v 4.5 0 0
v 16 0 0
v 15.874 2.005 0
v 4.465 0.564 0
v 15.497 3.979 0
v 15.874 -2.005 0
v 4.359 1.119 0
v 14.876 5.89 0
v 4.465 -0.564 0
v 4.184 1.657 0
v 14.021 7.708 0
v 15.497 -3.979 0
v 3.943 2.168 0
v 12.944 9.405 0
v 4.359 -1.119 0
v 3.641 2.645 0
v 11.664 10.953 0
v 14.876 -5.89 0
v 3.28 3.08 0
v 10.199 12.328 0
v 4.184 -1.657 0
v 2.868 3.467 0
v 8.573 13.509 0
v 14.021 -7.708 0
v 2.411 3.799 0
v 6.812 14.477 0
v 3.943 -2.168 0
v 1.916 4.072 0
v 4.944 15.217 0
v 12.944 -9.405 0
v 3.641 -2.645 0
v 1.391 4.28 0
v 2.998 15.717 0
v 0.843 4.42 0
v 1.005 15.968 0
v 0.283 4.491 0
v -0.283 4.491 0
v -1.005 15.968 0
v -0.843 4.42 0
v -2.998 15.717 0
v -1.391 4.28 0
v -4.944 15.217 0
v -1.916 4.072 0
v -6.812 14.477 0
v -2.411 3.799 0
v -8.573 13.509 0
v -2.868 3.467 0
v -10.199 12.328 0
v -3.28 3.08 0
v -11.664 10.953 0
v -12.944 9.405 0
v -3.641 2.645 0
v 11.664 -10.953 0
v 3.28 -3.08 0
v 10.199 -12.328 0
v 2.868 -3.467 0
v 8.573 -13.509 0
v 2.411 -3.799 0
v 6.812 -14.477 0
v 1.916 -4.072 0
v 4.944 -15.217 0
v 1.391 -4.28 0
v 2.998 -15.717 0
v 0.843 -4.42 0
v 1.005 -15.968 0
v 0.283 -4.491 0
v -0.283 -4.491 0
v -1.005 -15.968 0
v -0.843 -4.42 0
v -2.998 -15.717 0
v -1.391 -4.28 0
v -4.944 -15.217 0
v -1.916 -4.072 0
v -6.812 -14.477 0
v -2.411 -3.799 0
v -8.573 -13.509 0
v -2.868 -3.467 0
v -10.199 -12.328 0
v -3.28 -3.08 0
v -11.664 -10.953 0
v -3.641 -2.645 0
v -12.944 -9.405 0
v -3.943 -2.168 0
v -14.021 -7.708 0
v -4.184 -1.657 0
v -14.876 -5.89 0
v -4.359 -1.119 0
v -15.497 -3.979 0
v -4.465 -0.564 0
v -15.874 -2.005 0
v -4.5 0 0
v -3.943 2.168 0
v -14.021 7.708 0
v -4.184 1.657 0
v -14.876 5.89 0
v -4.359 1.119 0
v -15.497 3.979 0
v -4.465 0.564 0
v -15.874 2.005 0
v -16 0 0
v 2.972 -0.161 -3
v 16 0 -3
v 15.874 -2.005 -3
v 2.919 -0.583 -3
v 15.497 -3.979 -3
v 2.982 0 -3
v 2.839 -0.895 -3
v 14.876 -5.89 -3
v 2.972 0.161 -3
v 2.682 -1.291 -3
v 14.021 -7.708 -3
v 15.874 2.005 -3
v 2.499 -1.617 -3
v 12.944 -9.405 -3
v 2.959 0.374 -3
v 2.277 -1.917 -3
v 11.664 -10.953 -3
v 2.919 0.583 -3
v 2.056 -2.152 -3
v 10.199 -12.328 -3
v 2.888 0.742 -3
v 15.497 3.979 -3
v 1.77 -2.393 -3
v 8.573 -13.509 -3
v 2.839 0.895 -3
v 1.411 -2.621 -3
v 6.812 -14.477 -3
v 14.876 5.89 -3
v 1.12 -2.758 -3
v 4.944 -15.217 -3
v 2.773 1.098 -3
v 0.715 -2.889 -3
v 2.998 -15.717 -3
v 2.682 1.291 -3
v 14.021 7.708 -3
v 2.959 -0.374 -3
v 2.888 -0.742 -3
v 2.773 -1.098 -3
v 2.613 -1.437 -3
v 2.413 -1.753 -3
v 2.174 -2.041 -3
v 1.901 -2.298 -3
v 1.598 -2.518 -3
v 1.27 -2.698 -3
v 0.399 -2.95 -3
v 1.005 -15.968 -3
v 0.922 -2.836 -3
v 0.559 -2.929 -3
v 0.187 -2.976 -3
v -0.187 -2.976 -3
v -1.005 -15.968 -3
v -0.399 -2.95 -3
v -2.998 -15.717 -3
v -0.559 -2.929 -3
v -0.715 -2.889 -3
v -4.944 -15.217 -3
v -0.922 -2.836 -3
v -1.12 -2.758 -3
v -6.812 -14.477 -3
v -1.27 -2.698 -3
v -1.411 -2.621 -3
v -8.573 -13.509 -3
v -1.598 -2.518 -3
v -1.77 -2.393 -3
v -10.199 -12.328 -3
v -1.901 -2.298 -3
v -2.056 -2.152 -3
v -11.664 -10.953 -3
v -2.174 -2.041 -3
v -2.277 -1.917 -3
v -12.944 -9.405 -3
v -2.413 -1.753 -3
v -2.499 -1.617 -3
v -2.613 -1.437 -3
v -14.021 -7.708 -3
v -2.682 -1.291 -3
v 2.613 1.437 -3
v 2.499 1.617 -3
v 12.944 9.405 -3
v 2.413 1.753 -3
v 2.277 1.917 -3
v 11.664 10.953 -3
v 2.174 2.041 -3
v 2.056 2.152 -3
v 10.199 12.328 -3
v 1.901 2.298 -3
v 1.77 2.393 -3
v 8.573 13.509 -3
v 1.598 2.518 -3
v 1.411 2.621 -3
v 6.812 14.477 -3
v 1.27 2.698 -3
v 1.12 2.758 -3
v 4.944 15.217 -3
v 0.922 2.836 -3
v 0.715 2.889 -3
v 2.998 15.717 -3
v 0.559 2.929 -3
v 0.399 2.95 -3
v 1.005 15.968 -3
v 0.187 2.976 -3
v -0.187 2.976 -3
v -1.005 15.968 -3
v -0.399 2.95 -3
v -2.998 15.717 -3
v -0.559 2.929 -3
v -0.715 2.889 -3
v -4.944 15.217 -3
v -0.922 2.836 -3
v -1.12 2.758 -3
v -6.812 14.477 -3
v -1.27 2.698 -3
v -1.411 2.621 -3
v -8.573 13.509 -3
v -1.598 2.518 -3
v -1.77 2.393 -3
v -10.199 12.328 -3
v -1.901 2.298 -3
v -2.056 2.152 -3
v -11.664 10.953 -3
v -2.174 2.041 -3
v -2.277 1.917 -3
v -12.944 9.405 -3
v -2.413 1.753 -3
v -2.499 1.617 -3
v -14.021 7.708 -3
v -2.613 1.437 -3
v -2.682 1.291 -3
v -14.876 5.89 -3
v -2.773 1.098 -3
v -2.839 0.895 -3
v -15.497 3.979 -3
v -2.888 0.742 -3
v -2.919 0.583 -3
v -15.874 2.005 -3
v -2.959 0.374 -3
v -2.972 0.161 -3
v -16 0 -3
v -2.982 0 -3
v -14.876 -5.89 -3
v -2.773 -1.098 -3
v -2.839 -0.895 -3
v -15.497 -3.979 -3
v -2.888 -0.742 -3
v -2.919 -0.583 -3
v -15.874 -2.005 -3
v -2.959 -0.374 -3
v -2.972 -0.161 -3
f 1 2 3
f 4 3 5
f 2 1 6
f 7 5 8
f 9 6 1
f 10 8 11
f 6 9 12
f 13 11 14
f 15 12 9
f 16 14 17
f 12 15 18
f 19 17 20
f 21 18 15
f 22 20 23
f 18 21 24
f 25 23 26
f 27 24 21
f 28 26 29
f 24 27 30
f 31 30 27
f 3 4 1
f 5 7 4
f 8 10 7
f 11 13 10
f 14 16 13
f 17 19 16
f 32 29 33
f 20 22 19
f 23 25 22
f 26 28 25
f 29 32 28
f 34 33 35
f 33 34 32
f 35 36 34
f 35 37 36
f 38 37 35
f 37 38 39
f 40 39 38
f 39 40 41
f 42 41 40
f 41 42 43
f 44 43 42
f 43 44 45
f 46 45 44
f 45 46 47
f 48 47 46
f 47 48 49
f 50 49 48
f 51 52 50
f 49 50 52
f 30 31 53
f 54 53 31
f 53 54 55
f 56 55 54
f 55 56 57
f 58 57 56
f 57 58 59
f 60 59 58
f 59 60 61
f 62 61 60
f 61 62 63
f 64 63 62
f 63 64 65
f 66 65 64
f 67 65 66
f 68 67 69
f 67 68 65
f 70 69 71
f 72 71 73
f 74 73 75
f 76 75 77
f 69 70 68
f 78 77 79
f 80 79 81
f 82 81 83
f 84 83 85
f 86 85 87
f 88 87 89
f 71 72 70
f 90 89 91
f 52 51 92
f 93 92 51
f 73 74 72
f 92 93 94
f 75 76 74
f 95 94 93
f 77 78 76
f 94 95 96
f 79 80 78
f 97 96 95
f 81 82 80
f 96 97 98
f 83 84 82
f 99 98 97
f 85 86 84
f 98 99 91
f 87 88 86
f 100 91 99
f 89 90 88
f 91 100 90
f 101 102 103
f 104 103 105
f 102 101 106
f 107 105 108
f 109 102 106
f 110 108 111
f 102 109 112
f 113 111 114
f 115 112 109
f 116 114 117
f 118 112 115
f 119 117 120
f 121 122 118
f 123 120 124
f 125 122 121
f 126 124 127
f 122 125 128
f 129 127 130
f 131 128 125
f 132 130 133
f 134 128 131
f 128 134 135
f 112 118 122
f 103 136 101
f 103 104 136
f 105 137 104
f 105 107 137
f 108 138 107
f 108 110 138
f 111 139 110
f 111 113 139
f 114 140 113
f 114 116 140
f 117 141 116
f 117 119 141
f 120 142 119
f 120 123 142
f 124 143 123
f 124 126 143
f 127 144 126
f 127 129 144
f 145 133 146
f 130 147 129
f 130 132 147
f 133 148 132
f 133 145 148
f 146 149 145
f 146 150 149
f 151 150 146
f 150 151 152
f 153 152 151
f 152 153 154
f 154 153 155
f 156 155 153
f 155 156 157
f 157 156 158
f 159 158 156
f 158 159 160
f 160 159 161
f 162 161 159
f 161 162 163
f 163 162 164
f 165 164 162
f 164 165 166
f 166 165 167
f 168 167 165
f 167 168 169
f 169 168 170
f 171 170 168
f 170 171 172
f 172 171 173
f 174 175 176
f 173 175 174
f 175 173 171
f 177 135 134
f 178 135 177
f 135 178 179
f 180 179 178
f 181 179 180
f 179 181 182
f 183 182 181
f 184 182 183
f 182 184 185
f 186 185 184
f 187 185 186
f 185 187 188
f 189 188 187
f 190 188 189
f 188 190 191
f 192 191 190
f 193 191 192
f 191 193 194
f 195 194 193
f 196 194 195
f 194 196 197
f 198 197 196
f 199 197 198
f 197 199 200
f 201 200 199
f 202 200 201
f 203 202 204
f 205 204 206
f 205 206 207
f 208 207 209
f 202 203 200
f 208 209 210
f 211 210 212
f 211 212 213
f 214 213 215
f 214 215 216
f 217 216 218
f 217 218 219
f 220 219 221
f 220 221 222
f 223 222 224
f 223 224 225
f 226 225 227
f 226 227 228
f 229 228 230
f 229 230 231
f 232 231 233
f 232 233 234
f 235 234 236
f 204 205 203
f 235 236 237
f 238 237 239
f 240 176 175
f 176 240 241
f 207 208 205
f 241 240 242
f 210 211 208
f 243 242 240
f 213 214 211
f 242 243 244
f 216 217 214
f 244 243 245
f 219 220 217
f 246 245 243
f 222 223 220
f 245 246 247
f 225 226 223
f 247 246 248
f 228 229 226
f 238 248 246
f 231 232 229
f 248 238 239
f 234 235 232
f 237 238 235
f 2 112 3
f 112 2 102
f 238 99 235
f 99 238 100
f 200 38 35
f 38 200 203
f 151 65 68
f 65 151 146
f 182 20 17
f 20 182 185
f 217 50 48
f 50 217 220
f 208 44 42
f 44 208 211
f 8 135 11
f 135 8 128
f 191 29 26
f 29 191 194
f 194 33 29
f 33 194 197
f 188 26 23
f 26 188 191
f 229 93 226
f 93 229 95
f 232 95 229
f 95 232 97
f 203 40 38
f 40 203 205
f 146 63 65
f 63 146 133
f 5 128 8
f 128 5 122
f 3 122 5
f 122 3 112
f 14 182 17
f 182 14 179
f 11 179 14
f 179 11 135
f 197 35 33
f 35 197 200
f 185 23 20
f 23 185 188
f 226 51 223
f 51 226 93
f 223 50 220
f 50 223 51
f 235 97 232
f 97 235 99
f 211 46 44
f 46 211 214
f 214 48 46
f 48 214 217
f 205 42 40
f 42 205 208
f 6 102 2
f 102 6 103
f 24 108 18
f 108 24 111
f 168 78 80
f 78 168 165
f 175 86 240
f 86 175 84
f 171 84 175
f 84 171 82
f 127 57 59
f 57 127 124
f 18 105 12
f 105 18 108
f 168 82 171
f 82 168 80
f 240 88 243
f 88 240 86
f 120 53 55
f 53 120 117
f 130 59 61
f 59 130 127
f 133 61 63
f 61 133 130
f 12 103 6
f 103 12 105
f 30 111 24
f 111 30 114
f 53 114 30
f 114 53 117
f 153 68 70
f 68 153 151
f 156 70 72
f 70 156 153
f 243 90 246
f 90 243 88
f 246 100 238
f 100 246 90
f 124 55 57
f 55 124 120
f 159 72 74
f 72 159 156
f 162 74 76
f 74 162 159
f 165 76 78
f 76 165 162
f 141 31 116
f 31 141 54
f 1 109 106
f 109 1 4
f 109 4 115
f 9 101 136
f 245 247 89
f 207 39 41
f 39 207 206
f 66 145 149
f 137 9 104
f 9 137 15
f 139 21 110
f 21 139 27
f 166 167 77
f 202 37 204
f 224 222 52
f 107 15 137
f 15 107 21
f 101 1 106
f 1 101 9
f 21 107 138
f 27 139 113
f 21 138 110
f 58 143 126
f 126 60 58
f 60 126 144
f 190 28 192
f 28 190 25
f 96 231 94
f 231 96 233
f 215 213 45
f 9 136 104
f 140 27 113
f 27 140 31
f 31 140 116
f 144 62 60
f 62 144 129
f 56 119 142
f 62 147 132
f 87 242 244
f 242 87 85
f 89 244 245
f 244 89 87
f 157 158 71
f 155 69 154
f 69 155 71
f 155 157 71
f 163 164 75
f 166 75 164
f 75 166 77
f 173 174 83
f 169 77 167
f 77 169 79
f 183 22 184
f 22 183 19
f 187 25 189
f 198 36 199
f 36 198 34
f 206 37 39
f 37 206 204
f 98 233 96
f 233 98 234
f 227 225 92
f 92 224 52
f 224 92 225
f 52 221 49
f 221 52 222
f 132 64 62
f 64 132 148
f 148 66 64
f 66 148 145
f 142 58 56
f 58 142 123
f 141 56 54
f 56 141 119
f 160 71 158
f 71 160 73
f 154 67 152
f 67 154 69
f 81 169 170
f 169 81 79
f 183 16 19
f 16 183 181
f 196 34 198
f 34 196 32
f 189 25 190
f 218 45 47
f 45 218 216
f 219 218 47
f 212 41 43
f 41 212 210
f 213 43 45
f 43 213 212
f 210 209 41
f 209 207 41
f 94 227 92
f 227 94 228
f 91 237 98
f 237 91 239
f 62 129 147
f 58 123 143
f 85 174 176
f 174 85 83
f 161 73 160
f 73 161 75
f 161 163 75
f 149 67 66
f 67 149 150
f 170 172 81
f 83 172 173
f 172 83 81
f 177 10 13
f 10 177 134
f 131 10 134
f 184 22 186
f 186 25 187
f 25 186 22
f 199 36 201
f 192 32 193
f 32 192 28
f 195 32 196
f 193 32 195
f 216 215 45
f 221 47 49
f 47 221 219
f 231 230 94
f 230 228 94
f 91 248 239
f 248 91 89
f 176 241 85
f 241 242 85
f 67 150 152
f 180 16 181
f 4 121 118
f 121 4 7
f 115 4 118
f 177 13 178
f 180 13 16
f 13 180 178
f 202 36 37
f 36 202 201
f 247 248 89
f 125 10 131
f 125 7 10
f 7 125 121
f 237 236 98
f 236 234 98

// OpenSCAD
$fn = 50;


difference() {
	union() {
		translate(v = [0, 0, -3.0000000000]) {
			cylinder(h = 3, r = 7.0000000000);
		}
		translate(v = [0, 0, -3.0000000000]) {
			cylinder(h = 3, r = 16.0000000000);
		}
	}
	union() {
		translate(v = [0, 0, 0]) {
			rotate(a = [0, 0, 0]) {
				difference() {
					union() {
						#translate(v = [0, 0, -3.0000000000]) {
							cylinder(h = 3, r = 2.2500000000);
						}
						#translate(v = [0, 0, -4.2000000000]) {
							cylinder(h = 4.2000000000, r = 7.0000000000, r1 = 2.3750000000, r2 = 4.5000000000);
						}
						#translate(v = [0, 0, -3.0000000000]) {
							cylinder(h = 3, r = 2.3750000000);
						}
						#translate(v = [0, 0, -3.0000000000]) {
							cylinder(h = 3, r = 2.2500000000);
						}
					}
					union();
				}
			}
		}
	}
}
